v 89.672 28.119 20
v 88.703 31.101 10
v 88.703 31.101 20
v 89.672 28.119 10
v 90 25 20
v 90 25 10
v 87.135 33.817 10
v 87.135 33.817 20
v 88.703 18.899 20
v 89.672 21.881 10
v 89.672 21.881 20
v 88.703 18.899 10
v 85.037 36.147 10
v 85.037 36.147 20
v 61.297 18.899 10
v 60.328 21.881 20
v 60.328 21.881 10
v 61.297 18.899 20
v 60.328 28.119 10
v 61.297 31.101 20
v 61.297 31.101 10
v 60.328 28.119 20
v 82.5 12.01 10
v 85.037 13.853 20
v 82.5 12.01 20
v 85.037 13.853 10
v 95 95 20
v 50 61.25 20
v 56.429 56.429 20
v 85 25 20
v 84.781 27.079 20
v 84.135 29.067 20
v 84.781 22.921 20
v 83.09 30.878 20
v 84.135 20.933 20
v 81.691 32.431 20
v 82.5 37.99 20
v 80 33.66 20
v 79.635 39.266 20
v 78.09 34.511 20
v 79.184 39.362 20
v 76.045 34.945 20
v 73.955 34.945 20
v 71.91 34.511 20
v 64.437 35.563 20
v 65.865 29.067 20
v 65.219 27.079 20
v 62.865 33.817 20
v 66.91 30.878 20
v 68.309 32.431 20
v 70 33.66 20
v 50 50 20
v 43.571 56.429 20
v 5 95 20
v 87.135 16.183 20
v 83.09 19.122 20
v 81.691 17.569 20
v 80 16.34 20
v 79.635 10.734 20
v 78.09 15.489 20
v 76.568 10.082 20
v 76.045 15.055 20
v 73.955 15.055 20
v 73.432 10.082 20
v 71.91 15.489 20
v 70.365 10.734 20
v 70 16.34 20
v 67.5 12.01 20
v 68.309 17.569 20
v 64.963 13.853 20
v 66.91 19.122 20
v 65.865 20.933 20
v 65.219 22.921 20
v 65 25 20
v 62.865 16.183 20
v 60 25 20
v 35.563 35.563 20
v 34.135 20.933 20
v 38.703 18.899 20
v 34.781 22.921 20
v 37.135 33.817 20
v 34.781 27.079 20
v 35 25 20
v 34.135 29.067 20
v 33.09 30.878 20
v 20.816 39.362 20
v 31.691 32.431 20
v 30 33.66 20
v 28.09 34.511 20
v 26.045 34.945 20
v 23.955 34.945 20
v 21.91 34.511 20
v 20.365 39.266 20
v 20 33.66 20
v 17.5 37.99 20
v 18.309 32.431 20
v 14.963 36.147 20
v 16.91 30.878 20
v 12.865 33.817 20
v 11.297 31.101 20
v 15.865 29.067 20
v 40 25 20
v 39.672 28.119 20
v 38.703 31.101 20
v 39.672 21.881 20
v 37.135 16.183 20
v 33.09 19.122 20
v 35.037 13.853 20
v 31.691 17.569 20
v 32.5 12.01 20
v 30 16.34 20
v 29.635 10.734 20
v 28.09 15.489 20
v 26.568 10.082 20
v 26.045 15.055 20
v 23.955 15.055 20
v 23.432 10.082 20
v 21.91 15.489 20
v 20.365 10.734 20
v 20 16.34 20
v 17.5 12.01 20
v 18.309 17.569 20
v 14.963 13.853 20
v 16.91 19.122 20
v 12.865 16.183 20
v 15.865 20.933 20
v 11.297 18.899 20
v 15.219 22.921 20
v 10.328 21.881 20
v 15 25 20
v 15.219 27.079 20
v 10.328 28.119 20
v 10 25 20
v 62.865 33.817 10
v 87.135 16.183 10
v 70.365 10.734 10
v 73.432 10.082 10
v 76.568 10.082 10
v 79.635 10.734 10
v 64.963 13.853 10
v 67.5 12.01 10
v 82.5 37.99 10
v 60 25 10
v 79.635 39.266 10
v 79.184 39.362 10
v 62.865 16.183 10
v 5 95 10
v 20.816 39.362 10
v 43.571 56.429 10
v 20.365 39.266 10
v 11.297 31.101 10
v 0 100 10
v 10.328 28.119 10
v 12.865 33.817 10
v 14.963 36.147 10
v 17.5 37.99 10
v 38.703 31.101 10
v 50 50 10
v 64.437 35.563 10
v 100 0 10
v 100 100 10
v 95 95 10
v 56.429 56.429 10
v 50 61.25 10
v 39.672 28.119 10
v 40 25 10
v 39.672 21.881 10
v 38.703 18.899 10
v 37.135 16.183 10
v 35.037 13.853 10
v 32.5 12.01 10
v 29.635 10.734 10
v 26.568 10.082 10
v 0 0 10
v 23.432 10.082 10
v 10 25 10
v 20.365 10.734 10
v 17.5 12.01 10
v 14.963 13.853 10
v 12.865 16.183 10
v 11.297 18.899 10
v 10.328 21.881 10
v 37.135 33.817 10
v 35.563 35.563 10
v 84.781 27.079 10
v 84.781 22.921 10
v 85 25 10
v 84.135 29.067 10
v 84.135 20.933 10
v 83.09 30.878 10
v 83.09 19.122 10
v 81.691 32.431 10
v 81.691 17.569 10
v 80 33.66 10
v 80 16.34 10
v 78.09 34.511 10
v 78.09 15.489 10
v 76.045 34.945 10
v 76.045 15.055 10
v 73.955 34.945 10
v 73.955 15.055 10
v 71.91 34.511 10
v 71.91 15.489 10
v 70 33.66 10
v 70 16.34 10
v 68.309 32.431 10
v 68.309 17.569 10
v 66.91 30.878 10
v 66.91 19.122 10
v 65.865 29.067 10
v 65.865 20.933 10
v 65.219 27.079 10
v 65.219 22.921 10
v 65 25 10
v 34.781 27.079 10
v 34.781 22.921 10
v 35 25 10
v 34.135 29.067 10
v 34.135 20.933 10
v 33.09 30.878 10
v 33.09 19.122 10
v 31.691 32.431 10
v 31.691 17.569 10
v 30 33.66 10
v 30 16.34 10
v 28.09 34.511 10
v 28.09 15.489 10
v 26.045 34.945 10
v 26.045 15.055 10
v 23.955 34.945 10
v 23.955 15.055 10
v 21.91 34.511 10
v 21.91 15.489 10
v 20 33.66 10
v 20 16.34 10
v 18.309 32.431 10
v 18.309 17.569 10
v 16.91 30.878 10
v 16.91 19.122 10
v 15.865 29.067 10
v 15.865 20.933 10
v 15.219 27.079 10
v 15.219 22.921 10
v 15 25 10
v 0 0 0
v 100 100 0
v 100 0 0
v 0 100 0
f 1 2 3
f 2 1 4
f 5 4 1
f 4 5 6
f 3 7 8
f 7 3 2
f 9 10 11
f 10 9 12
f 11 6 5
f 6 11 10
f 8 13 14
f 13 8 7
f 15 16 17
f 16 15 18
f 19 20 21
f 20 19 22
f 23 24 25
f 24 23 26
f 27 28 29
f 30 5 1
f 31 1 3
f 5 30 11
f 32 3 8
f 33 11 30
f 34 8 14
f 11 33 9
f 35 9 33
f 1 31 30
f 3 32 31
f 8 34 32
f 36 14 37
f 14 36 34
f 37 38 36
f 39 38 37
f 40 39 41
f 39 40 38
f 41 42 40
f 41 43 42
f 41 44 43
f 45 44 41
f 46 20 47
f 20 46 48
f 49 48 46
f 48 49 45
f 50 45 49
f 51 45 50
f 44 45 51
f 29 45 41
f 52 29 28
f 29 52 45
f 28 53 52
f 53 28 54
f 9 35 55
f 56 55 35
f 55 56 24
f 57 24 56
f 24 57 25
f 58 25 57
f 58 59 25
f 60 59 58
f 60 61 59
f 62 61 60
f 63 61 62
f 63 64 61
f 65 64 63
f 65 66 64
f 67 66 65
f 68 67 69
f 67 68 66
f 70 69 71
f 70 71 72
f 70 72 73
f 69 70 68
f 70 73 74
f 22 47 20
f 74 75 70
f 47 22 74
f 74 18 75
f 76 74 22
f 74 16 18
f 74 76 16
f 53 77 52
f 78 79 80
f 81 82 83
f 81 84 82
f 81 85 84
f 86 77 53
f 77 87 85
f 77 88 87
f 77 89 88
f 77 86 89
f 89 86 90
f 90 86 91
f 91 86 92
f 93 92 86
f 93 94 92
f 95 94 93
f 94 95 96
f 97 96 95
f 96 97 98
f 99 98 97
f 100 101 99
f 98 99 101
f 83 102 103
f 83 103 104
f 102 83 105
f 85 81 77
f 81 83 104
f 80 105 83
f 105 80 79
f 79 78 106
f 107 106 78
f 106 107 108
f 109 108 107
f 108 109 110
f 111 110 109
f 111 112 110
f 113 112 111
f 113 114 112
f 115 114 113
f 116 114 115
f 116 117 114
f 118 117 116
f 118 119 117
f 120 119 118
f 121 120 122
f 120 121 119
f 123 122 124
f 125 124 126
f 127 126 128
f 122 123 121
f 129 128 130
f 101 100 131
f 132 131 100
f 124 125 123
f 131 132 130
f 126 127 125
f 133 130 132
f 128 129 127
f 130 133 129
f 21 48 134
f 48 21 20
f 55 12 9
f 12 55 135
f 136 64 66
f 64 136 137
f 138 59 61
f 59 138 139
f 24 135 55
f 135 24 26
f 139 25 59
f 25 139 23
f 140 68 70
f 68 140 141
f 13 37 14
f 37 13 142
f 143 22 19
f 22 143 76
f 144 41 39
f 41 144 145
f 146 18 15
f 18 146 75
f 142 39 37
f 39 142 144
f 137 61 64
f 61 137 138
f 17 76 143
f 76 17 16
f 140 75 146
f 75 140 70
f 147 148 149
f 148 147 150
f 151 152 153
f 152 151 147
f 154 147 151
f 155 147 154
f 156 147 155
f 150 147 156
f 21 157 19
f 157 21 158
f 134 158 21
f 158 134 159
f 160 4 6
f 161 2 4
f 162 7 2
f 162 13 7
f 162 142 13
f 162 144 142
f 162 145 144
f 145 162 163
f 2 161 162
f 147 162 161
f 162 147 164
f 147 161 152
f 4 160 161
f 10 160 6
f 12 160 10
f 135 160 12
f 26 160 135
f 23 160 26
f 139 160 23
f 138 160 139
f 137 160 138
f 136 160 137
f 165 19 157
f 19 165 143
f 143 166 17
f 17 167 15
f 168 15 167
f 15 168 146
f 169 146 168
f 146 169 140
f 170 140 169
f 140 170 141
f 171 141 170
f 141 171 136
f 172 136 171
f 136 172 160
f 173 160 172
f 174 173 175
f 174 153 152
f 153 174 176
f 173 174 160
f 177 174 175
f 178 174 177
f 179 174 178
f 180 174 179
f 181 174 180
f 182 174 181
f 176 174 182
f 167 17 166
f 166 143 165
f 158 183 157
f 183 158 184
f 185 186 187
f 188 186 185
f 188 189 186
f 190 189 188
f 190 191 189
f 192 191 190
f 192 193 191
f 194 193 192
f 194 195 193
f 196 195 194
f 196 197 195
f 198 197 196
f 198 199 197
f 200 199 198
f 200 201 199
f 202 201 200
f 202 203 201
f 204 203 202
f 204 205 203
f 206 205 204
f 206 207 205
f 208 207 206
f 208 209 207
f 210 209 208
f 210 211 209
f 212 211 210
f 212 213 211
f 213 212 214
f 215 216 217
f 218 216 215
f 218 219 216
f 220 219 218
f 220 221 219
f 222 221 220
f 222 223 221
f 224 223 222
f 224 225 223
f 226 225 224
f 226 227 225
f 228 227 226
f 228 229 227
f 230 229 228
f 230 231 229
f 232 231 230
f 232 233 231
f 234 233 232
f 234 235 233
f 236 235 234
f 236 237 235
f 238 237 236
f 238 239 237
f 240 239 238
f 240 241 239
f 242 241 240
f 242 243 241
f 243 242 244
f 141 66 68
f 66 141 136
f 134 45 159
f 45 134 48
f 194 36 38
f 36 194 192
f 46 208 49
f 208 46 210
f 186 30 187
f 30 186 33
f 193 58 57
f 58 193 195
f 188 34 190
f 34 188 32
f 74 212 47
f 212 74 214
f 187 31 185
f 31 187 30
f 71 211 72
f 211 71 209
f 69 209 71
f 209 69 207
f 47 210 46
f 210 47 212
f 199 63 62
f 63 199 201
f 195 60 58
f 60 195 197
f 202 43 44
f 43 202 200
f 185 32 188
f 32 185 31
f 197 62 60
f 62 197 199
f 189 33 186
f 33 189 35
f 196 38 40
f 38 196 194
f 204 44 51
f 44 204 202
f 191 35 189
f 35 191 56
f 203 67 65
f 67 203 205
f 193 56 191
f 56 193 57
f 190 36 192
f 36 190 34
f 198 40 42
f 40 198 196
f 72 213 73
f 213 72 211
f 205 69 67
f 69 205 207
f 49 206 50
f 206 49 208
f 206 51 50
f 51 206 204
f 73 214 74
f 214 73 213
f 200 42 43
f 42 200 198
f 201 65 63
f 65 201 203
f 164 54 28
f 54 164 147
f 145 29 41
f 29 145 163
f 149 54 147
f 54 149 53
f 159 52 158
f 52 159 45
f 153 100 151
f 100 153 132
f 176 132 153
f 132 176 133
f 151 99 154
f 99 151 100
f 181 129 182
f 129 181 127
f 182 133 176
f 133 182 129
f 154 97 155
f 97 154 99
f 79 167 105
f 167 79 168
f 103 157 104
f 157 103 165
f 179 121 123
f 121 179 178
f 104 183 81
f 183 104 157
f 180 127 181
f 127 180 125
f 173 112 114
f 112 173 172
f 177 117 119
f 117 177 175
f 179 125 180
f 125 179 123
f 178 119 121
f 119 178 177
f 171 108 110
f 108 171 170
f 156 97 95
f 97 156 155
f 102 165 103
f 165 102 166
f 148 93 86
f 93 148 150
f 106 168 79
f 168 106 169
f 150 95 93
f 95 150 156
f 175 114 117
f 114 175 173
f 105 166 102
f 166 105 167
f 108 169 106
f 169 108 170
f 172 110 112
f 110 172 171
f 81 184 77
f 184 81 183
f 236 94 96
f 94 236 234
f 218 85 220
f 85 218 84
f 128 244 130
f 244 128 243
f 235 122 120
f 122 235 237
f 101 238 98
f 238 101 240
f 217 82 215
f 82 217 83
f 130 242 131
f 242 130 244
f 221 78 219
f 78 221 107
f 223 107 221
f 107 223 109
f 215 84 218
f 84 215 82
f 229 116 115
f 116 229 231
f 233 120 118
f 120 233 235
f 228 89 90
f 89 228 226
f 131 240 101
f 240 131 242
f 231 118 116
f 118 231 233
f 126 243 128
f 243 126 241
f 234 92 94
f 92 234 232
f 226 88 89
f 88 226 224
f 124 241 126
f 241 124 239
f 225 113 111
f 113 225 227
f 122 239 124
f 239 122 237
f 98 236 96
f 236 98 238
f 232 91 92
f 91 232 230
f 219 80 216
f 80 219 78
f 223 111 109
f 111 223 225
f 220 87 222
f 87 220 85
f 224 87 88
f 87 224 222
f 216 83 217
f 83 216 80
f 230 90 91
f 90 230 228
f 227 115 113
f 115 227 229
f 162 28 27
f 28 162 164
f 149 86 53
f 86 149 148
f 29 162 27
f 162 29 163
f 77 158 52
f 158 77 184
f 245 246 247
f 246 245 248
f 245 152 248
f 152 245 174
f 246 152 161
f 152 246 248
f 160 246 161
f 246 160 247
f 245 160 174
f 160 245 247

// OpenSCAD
module ring(inner,outer)
{
    difference()
    {        
        cylinder(10,outer,outer);
        translate([0,0,-1]) cylinder(12,inner,inner);
    }
};

module sciss()
{
ring(10,15);
linear_extrude(10) polygon([[-10,10],[10,10],[-70,70]]);
}

module scissors()
{
sciss();
translate([-50,0,0]) mirror() sciss();
}

linear_extrude(10) square([100,100]);
translate([75,25,10]) scissors();
